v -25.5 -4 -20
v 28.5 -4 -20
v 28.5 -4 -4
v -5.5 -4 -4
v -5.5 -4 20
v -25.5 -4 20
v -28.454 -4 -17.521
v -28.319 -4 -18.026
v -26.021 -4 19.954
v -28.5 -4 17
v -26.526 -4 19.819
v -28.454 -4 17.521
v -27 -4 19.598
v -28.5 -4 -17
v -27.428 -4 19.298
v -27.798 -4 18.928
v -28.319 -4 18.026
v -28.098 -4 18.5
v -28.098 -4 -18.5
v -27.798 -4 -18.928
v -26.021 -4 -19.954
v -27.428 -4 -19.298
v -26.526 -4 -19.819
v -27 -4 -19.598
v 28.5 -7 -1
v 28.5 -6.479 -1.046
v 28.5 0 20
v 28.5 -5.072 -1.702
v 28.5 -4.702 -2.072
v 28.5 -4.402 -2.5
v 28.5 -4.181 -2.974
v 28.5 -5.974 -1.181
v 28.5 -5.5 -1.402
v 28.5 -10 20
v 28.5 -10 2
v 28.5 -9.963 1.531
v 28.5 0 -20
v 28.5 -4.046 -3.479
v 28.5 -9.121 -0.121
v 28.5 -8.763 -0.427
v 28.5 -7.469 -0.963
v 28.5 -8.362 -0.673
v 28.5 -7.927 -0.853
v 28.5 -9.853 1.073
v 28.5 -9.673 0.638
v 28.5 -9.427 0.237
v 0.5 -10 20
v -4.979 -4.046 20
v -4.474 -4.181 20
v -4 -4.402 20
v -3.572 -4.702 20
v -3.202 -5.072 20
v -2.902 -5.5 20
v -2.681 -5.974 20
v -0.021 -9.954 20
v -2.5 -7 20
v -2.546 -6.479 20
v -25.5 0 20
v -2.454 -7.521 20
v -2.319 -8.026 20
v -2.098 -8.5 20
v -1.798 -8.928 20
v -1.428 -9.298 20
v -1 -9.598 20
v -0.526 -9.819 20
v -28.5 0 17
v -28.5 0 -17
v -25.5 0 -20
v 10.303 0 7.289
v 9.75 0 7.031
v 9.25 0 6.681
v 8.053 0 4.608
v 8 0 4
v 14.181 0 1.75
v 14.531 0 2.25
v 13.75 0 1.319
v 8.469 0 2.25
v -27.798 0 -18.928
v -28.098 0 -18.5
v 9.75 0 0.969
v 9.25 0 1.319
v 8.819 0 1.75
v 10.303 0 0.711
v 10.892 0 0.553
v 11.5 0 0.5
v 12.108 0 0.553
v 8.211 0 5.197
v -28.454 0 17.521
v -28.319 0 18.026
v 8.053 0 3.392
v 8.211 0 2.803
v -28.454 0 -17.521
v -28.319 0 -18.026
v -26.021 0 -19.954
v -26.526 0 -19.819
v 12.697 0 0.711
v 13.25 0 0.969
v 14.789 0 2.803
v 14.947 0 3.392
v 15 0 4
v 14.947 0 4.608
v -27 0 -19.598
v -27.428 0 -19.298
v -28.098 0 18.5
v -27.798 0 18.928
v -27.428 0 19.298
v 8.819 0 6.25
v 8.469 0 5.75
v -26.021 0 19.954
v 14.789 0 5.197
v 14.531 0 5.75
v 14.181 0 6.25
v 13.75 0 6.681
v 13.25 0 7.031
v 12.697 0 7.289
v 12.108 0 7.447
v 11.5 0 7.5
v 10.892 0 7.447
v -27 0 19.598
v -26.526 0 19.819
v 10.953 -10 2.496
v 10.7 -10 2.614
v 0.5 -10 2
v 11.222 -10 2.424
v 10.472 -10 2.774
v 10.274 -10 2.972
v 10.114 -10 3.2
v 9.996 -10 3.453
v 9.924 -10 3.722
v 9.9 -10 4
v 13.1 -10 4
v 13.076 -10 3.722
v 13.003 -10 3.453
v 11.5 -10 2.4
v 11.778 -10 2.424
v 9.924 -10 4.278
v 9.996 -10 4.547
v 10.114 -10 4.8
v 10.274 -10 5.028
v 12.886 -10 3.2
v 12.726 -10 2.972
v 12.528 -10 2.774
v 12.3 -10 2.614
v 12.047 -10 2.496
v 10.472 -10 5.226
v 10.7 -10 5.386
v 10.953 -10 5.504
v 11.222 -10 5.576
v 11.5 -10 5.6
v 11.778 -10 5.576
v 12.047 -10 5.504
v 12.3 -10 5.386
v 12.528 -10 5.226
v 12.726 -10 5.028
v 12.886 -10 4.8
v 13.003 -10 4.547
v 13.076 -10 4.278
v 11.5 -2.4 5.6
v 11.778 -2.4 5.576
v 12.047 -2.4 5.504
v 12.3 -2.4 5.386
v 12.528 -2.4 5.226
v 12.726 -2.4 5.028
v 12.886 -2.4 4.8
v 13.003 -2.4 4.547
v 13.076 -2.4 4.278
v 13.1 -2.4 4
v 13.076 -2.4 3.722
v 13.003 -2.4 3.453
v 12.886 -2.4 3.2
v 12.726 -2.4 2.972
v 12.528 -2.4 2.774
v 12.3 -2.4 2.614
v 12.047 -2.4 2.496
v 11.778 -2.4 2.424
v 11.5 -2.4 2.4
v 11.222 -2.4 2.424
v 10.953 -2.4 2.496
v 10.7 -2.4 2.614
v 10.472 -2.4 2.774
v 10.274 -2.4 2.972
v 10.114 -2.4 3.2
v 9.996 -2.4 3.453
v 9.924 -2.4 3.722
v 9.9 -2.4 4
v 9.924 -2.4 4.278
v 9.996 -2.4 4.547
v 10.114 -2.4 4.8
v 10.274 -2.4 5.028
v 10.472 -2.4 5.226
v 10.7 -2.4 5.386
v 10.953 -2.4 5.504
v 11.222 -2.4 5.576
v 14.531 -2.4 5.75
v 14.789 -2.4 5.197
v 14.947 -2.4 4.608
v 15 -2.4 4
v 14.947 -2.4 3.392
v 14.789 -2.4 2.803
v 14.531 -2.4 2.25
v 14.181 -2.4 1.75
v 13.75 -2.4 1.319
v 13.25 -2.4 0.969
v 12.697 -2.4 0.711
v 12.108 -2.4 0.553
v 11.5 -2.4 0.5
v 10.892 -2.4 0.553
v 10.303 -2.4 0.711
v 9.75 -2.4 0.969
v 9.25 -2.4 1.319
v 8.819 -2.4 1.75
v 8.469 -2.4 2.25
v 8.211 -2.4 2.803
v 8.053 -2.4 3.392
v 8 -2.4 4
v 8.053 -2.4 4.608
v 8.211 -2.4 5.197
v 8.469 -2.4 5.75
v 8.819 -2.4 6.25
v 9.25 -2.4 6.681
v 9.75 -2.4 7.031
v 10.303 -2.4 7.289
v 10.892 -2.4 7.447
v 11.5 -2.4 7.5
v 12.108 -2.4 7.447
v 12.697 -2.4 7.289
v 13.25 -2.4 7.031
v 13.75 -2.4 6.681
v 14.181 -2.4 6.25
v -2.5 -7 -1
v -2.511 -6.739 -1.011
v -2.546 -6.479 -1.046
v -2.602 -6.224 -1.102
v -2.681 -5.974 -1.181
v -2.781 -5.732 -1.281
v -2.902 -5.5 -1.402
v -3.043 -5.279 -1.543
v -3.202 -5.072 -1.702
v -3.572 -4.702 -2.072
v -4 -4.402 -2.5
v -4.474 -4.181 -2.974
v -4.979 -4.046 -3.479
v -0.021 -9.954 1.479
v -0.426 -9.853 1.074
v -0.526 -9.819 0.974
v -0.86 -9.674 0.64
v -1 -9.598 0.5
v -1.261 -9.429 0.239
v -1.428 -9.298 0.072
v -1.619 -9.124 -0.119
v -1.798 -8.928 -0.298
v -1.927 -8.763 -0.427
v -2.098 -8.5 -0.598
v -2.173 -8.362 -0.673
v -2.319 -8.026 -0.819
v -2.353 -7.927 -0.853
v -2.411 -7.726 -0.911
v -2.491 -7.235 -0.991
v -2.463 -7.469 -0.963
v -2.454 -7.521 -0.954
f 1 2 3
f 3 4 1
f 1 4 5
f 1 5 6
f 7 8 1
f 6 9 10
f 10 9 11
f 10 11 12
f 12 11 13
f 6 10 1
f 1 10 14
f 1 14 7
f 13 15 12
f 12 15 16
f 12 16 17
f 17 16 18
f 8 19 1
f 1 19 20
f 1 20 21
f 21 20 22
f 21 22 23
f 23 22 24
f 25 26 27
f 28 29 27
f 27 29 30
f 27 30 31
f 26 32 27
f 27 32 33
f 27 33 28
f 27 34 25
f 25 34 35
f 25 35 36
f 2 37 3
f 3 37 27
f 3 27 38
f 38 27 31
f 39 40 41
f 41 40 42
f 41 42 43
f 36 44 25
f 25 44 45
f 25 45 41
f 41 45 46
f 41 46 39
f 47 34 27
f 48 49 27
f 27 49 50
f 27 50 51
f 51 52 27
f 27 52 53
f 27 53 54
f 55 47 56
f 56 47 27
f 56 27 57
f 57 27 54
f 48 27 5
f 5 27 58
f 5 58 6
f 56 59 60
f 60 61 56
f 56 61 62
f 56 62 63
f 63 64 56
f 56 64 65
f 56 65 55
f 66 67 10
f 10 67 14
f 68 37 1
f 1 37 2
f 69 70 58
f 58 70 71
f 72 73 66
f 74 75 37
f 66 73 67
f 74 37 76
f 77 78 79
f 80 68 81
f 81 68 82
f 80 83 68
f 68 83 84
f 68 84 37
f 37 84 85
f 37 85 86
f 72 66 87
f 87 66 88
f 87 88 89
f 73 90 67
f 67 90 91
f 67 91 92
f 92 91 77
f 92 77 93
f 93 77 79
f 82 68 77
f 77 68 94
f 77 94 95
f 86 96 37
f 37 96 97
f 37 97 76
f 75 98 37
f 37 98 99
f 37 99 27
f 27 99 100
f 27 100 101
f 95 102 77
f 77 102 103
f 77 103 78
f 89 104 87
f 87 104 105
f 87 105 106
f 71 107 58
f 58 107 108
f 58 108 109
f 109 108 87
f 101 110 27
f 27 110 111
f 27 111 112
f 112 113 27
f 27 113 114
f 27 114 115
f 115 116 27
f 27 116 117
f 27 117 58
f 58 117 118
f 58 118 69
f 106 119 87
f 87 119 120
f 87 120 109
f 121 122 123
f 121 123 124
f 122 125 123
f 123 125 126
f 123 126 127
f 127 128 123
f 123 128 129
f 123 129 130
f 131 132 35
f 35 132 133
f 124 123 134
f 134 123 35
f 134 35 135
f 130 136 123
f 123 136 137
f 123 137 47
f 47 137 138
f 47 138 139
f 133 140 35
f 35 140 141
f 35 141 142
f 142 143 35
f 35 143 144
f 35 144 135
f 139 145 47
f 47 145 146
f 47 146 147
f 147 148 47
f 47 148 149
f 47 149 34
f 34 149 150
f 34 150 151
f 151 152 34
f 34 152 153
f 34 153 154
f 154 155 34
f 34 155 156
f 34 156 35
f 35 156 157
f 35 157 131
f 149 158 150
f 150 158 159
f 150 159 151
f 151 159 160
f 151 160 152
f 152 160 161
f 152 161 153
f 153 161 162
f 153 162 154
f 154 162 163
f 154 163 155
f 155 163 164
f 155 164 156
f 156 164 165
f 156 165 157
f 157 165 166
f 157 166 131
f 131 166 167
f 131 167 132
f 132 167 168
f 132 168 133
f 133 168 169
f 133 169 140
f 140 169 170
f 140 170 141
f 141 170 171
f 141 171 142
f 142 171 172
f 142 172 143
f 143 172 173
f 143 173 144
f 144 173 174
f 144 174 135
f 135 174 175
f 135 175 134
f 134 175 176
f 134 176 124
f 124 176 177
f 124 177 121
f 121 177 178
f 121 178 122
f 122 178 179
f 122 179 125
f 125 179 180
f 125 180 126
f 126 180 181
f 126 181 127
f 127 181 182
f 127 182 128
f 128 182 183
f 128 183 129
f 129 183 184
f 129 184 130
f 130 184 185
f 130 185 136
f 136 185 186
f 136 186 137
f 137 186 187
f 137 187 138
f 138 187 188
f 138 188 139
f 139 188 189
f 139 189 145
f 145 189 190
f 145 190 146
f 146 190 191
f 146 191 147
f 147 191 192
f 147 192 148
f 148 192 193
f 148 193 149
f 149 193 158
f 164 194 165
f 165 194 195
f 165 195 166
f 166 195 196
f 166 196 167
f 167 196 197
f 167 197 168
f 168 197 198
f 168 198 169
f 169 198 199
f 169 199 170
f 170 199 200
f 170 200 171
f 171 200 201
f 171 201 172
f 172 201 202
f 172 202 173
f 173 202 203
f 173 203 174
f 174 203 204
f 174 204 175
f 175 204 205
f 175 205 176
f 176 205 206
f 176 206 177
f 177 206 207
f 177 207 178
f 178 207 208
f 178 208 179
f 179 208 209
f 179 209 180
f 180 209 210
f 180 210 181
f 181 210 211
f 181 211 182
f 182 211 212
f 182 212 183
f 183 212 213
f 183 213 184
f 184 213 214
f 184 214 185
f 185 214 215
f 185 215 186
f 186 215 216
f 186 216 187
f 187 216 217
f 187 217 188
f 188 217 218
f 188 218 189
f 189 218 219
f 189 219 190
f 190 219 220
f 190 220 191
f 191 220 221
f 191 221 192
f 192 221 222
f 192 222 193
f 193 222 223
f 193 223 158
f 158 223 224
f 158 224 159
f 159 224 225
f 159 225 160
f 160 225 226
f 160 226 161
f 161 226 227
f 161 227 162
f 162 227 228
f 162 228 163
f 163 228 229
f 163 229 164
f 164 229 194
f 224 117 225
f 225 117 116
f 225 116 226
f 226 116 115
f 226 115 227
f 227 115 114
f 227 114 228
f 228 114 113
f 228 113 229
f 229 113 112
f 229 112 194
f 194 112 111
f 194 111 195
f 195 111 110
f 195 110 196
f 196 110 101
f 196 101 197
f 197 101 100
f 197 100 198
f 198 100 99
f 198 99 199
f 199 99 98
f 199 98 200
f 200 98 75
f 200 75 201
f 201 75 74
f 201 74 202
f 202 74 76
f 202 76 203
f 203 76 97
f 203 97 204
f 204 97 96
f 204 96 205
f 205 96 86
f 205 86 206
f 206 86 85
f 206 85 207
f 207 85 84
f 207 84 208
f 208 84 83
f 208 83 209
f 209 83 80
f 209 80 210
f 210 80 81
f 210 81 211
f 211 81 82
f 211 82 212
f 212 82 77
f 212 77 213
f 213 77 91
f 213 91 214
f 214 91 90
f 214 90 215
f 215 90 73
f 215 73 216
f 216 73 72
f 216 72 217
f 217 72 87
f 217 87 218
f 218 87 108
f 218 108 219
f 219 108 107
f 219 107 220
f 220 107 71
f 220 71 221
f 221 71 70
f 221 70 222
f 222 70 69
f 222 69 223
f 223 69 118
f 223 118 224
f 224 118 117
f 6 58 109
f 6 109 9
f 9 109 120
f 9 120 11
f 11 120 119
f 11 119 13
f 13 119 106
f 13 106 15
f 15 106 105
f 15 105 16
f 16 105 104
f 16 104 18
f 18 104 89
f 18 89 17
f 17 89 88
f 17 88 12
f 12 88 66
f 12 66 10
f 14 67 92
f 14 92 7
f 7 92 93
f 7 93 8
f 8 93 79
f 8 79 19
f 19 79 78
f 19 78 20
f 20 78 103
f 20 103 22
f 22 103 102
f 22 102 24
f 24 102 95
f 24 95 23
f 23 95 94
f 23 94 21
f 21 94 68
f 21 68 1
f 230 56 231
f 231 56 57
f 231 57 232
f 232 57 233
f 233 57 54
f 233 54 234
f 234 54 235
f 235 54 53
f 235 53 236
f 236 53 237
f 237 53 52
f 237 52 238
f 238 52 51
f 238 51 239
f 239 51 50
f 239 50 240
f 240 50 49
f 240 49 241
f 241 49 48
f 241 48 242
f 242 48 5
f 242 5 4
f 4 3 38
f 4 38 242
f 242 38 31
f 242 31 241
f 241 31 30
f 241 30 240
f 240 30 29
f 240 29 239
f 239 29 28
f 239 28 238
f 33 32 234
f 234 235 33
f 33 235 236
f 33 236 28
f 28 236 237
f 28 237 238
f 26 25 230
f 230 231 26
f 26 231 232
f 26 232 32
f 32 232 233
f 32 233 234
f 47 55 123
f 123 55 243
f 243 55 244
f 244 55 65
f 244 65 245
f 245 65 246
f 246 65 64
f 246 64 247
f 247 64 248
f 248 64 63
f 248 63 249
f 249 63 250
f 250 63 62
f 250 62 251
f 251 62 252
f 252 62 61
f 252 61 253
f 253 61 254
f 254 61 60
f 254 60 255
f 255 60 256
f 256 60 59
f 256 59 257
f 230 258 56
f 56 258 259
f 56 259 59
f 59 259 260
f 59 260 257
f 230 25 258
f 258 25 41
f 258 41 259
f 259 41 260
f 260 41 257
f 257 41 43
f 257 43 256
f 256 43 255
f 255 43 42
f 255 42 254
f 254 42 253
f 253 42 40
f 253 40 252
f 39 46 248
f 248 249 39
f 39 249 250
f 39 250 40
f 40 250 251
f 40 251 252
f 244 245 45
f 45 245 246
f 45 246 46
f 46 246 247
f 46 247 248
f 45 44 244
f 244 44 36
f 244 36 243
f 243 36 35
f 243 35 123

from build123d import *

# Parameters (mm, degrees)
SKETCH1_W                                = 57
SKETCH1_H                                = 40
BOSS_EXTRUDE1_DEPTH                      = 4
SKETCH2_W                                = 31
SKETCH2_H                                = 21
BOSS_EXTRUDE2_DEPTH                      = 6
CBORE_FOR_M3_PAN_HEAD_SCREW1_D           = 3.2
CBORE_FOR_M3_PAN_HEAD_SCREW1_CBORE_D     = 7
CBORE_FOR_M3_PAN_HEAD_SCREW1_CBORE_DEPTH = 2.4
FILLET1_R                                = 3


with BuildPart() as part:
    # Sketch1 → Boss-Extrude1 (new body)
    with BuildSketch(Plane(origin=(0, 0, 0), x_dir=(1, 0, 0), z_dir=(0, 1, 0))):
        Rectangle(SKETCH1_W, SKETCH1_H)
    extrude(amount=-BOSS_EXTRUDE1_DEPTH)

    # Sketch2 → Boss-Extrude2 (add)
    with BuildSketch(Plane.XZ.offset(4)):
        with Locations((13, 9.5)):
            Rectangle(SKETCH2_W, SKETCH2_H)
    extrude(amount=BOSS_EXTRUDE2_DEPTH)

    # CBORE for M3 Pan Head Screw1 (through all)
    with Locations(Plane(origin=(0, 0, 0), x_dir=(1, 0, 0), z_dir=(0, 1, 0))):
        with Locations((11.5, -4)):
            CounterBoreHole(CBORE_FOR_M3_PAN_HEAD_SCREW1_D / 2, CBORE_FOR_M3_PAN_HEAD_SCREW1_CBORE_D / 2, CBORE_FOR_M3_PAN_HEAD_SCREW1_CBORE_DEPTH)

    # Fillet1
    fillet1_edges = [part.edges().sort_by_distance(p)[0] for p in [
        (13, -10, -1),
        (-2.5, -10, 9.5),
        (13, -4, -1),
        (-2.5, -4, 9.5),
        (-28.5, -2, 20),
        (-28.5, -2, -20),
    ]]
    fillet(fillet1_edges, radius=FILLET1_R - 0.0001)  # a hair under: the kernel refuses the full size


solid = part.part
